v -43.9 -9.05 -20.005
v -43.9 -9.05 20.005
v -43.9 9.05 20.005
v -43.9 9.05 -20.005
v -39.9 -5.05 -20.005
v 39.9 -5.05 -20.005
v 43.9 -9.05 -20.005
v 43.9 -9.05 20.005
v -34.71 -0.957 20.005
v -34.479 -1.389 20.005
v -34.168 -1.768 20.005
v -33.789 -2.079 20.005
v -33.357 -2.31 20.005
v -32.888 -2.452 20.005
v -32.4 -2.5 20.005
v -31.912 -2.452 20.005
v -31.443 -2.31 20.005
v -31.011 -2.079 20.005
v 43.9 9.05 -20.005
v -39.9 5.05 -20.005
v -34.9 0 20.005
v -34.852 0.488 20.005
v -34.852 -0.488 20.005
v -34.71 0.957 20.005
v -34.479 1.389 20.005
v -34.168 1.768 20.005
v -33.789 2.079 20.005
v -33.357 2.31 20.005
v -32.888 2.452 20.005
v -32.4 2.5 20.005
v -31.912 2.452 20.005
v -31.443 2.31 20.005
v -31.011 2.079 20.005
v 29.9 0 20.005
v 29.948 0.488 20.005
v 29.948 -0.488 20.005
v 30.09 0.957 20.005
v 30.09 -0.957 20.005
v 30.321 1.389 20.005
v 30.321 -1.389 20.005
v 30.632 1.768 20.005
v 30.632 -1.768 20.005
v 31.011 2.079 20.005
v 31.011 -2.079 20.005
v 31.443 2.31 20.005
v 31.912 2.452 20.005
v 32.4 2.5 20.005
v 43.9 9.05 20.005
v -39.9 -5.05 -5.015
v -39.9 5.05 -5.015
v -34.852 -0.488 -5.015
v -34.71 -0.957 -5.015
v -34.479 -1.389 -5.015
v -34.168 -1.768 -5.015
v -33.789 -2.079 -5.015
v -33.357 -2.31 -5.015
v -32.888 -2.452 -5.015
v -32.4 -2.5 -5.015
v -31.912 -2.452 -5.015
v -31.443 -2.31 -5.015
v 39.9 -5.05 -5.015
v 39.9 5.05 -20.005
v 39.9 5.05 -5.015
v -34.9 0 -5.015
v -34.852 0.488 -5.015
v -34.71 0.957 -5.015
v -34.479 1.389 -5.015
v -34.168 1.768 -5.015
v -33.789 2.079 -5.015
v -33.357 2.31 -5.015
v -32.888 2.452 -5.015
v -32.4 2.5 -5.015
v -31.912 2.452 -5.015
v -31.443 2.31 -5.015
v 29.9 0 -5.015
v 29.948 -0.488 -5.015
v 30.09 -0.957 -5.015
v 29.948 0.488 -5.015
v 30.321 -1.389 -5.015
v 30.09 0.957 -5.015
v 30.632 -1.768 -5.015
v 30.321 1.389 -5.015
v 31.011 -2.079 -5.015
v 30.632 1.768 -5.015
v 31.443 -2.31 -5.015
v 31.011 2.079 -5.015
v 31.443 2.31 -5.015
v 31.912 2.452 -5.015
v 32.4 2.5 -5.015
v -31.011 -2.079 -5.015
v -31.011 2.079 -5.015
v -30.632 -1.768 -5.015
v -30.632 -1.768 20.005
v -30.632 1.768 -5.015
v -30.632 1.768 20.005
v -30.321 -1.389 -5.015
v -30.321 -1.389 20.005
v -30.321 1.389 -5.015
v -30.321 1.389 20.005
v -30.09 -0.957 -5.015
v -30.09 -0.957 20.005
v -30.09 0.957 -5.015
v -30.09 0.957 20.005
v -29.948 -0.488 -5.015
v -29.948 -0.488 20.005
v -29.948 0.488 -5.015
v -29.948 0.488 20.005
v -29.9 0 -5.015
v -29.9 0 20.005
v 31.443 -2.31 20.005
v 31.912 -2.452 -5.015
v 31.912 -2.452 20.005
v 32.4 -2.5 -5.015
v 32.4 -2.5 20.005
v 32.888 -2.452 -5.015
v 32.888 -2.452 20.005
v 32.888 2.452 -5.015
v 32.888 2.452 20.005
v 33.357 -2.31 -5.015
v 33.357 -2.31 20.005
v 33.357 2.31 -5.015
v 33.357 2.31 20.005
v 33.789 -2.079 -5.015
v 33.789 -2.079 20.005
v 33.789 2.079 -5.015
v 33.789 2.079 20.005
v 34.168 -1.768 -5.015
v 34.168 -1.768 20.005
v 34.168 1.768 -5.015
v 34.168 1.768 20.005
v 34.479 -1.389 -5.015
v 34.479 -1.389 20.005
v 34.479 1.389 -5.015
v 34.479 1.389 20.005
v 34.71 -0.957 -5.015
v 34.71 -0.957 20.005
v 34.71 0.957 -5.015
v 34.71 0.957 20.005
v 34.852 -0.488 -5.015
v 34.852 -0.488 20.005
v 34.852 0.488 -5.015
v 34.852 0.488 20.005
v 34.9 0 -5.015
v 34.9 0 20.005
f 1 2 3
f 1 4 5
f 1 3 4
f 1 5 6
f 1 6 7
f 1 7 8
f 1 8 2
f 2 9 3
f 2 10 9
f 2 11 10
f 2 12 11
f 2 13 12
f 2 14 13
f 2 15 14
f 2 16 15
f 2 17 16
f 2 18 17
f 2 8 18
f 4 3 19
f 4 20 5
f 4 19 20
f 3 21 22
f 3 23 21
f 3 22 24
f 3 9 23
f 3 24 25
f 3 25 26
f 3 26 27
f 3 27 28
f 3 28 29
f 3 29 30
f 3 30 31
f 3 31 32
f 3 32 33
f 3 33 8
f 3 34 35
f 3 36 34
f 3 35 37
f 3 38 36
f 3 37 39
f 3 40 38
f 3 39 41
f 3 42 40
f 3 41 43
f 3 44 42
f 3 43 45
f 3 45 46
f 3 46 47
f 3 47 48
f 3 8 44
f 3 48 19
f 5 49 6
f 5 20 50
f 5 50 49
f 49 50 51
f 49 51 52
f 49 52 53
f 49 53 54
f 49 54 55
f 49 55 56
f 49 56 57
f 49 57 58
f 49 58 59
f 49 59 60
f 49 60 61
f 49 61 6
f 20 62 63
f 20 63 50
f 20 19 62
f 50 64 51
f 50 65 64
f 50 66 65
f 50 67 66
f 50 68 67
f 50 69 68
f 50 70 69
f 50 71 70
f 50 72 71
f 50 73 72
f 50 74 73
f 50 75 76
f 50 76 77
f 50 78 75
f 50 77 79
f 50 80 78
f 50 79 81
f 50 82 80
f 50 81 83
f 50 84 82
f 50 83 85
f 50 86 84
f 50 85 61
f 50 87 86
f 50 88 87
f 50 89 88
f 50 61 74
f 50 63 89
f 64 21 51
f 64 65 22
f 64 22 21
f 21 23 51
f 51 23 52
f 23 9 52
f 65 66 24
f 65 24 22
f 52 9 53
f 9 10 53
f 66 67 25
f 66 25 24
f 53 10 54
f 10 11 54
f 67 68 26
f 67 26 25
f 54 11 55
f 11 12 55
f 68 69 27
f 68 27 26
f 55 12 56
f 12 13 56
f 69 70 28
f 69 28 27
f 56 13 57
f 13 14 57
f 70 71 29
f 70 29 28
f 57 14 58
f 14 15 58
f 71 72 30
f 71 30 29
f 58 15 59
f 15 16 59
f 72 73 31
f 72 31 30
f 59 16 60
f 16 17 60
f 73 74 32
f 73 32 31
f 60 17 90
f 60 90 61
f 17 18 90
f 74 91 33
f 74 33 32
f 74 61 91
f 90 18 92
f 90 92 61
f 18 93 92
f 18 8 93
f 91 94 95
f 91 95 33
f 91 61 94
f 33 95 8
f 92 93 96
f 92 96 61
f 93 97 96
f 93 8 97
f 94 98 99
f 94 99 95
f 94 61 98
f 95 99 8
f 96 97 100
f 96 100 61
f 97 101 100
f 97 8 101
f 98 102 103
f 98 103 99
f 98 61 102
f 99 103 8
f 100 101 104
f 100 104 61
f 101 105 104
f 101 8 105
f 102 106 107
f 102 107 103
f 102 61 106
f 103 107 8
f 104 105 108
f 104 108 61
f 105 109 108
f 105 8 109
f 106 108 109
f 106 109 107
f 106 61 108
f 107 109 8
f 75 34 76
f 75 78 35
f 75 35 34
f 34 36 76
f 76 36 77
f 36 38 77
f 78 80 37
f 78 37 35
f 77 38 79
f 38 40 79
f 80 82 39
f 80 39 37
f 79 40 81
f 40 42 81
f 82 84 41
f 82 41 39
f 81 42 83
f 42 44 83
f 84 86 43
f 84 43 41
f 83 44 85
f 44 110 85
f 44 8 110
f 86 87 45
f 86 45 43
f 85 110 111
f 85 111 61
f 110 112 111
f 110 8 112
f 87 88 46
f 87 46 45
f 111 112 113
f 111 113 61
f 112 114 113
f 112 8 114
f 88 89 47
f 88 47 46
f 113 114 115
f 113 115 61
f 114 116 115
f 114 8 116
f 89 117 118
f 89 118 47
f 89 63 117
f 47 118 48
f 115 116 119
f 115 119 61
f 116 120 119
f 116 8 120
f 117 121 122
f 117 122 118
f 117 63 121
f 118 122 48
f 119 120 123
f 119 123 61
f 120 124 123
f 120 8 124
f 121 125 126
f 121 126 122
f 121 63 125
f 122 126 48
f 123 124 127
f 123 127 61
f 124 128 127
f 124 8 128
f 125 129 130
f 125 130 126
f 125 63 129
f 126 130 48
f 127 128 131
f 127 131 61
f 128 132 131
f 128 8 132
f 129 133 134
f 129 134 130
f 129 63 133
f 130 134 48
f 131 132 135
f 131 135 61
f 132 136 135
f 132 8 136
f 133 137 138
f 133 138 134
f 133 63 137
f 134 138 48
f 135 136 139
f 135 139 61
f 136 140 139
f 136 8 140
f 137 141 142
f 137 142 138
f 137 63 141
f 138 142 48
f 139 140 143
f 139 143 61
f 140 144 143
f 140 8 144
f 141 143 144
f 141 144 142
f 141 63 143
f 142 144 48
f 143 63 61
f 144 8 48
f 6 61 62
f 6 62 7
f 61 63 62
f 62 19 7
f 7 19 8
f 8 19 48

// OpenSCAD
// Start: lazy_union
default_5_default_5();
// End: lazy_union

// Modules.

// 'PartMaterial undef-default - default 5.0'
module default_5_default_5() {
  // 'None : _combine_solids_and_holes'
  union() {
    // '_combine_solids_and_holes'
    difference() {
      // 'default : _combine_solids_and_holes'
      union() {
        // 'jig'
        multmatrix(m=[[1.0, 0.0, 0.0, -43.9], [0.0, 1.0, 0.0, -9.05], [0.0, 0.0, 1.0, -20.005], [0.0, 0.0, 0.0, 1.0]]) {
          // 'jig : _combine_solids_and_holes'
          union() {
            // 'jig'
            cube(size=[87.8, 18.1, 40.01]);
          }
        }
      }
      // 'default'
      multmatrix(m=[[1.0, 0.0, 0.0, -39.9], [0.0, 1.0, 0.0, -5.050000000000001], [0.0, 0.0, 1.0, -20.015], [0.0, 0.0, 0.0, 1.0]]) {
        // 'stock : _combine_solids_and_holes'
        union() {
          // 'stock'
          cube(size=[79.8, 10.100000000000001, 15.0]);
        }
      }
      // 'default'
      multmatrix(m=[[0.0, 1.0, 0.0, 32.4], [1.0, 0.0, 0.0, 0.0], [0.0, 0.0, -1.0, 119.99000000000001], [0.0, 0.0, 0.0, 1.0]]) {
        // "('guide', 0) : _combine_solids_and_holes"
        union() {
          // ('guide', 0)
          cylinder(h=125.01, r1=2.5, r2=2.5, center=false, $fn=32);
        }
      }
      // 'default'
      multmatrix(m=[[0.0, -1.0, 0.0, -32.4], [-1.0, 0.0, 0.0, 0.0], [0.0, 0.0, -1.0, 119.99000000000001], [0.0, 0.0, 0.0, 1.0]]) {
        // "('guide', 1) : _combine_solids_and_holes"
        union() {
          // ('guide', 1)
          cylinder(h=125.01, r1=2.5, r2=2.5, center=false, $fn=32);
        }
      }
    }
  }
} // end module default_5_default_5
